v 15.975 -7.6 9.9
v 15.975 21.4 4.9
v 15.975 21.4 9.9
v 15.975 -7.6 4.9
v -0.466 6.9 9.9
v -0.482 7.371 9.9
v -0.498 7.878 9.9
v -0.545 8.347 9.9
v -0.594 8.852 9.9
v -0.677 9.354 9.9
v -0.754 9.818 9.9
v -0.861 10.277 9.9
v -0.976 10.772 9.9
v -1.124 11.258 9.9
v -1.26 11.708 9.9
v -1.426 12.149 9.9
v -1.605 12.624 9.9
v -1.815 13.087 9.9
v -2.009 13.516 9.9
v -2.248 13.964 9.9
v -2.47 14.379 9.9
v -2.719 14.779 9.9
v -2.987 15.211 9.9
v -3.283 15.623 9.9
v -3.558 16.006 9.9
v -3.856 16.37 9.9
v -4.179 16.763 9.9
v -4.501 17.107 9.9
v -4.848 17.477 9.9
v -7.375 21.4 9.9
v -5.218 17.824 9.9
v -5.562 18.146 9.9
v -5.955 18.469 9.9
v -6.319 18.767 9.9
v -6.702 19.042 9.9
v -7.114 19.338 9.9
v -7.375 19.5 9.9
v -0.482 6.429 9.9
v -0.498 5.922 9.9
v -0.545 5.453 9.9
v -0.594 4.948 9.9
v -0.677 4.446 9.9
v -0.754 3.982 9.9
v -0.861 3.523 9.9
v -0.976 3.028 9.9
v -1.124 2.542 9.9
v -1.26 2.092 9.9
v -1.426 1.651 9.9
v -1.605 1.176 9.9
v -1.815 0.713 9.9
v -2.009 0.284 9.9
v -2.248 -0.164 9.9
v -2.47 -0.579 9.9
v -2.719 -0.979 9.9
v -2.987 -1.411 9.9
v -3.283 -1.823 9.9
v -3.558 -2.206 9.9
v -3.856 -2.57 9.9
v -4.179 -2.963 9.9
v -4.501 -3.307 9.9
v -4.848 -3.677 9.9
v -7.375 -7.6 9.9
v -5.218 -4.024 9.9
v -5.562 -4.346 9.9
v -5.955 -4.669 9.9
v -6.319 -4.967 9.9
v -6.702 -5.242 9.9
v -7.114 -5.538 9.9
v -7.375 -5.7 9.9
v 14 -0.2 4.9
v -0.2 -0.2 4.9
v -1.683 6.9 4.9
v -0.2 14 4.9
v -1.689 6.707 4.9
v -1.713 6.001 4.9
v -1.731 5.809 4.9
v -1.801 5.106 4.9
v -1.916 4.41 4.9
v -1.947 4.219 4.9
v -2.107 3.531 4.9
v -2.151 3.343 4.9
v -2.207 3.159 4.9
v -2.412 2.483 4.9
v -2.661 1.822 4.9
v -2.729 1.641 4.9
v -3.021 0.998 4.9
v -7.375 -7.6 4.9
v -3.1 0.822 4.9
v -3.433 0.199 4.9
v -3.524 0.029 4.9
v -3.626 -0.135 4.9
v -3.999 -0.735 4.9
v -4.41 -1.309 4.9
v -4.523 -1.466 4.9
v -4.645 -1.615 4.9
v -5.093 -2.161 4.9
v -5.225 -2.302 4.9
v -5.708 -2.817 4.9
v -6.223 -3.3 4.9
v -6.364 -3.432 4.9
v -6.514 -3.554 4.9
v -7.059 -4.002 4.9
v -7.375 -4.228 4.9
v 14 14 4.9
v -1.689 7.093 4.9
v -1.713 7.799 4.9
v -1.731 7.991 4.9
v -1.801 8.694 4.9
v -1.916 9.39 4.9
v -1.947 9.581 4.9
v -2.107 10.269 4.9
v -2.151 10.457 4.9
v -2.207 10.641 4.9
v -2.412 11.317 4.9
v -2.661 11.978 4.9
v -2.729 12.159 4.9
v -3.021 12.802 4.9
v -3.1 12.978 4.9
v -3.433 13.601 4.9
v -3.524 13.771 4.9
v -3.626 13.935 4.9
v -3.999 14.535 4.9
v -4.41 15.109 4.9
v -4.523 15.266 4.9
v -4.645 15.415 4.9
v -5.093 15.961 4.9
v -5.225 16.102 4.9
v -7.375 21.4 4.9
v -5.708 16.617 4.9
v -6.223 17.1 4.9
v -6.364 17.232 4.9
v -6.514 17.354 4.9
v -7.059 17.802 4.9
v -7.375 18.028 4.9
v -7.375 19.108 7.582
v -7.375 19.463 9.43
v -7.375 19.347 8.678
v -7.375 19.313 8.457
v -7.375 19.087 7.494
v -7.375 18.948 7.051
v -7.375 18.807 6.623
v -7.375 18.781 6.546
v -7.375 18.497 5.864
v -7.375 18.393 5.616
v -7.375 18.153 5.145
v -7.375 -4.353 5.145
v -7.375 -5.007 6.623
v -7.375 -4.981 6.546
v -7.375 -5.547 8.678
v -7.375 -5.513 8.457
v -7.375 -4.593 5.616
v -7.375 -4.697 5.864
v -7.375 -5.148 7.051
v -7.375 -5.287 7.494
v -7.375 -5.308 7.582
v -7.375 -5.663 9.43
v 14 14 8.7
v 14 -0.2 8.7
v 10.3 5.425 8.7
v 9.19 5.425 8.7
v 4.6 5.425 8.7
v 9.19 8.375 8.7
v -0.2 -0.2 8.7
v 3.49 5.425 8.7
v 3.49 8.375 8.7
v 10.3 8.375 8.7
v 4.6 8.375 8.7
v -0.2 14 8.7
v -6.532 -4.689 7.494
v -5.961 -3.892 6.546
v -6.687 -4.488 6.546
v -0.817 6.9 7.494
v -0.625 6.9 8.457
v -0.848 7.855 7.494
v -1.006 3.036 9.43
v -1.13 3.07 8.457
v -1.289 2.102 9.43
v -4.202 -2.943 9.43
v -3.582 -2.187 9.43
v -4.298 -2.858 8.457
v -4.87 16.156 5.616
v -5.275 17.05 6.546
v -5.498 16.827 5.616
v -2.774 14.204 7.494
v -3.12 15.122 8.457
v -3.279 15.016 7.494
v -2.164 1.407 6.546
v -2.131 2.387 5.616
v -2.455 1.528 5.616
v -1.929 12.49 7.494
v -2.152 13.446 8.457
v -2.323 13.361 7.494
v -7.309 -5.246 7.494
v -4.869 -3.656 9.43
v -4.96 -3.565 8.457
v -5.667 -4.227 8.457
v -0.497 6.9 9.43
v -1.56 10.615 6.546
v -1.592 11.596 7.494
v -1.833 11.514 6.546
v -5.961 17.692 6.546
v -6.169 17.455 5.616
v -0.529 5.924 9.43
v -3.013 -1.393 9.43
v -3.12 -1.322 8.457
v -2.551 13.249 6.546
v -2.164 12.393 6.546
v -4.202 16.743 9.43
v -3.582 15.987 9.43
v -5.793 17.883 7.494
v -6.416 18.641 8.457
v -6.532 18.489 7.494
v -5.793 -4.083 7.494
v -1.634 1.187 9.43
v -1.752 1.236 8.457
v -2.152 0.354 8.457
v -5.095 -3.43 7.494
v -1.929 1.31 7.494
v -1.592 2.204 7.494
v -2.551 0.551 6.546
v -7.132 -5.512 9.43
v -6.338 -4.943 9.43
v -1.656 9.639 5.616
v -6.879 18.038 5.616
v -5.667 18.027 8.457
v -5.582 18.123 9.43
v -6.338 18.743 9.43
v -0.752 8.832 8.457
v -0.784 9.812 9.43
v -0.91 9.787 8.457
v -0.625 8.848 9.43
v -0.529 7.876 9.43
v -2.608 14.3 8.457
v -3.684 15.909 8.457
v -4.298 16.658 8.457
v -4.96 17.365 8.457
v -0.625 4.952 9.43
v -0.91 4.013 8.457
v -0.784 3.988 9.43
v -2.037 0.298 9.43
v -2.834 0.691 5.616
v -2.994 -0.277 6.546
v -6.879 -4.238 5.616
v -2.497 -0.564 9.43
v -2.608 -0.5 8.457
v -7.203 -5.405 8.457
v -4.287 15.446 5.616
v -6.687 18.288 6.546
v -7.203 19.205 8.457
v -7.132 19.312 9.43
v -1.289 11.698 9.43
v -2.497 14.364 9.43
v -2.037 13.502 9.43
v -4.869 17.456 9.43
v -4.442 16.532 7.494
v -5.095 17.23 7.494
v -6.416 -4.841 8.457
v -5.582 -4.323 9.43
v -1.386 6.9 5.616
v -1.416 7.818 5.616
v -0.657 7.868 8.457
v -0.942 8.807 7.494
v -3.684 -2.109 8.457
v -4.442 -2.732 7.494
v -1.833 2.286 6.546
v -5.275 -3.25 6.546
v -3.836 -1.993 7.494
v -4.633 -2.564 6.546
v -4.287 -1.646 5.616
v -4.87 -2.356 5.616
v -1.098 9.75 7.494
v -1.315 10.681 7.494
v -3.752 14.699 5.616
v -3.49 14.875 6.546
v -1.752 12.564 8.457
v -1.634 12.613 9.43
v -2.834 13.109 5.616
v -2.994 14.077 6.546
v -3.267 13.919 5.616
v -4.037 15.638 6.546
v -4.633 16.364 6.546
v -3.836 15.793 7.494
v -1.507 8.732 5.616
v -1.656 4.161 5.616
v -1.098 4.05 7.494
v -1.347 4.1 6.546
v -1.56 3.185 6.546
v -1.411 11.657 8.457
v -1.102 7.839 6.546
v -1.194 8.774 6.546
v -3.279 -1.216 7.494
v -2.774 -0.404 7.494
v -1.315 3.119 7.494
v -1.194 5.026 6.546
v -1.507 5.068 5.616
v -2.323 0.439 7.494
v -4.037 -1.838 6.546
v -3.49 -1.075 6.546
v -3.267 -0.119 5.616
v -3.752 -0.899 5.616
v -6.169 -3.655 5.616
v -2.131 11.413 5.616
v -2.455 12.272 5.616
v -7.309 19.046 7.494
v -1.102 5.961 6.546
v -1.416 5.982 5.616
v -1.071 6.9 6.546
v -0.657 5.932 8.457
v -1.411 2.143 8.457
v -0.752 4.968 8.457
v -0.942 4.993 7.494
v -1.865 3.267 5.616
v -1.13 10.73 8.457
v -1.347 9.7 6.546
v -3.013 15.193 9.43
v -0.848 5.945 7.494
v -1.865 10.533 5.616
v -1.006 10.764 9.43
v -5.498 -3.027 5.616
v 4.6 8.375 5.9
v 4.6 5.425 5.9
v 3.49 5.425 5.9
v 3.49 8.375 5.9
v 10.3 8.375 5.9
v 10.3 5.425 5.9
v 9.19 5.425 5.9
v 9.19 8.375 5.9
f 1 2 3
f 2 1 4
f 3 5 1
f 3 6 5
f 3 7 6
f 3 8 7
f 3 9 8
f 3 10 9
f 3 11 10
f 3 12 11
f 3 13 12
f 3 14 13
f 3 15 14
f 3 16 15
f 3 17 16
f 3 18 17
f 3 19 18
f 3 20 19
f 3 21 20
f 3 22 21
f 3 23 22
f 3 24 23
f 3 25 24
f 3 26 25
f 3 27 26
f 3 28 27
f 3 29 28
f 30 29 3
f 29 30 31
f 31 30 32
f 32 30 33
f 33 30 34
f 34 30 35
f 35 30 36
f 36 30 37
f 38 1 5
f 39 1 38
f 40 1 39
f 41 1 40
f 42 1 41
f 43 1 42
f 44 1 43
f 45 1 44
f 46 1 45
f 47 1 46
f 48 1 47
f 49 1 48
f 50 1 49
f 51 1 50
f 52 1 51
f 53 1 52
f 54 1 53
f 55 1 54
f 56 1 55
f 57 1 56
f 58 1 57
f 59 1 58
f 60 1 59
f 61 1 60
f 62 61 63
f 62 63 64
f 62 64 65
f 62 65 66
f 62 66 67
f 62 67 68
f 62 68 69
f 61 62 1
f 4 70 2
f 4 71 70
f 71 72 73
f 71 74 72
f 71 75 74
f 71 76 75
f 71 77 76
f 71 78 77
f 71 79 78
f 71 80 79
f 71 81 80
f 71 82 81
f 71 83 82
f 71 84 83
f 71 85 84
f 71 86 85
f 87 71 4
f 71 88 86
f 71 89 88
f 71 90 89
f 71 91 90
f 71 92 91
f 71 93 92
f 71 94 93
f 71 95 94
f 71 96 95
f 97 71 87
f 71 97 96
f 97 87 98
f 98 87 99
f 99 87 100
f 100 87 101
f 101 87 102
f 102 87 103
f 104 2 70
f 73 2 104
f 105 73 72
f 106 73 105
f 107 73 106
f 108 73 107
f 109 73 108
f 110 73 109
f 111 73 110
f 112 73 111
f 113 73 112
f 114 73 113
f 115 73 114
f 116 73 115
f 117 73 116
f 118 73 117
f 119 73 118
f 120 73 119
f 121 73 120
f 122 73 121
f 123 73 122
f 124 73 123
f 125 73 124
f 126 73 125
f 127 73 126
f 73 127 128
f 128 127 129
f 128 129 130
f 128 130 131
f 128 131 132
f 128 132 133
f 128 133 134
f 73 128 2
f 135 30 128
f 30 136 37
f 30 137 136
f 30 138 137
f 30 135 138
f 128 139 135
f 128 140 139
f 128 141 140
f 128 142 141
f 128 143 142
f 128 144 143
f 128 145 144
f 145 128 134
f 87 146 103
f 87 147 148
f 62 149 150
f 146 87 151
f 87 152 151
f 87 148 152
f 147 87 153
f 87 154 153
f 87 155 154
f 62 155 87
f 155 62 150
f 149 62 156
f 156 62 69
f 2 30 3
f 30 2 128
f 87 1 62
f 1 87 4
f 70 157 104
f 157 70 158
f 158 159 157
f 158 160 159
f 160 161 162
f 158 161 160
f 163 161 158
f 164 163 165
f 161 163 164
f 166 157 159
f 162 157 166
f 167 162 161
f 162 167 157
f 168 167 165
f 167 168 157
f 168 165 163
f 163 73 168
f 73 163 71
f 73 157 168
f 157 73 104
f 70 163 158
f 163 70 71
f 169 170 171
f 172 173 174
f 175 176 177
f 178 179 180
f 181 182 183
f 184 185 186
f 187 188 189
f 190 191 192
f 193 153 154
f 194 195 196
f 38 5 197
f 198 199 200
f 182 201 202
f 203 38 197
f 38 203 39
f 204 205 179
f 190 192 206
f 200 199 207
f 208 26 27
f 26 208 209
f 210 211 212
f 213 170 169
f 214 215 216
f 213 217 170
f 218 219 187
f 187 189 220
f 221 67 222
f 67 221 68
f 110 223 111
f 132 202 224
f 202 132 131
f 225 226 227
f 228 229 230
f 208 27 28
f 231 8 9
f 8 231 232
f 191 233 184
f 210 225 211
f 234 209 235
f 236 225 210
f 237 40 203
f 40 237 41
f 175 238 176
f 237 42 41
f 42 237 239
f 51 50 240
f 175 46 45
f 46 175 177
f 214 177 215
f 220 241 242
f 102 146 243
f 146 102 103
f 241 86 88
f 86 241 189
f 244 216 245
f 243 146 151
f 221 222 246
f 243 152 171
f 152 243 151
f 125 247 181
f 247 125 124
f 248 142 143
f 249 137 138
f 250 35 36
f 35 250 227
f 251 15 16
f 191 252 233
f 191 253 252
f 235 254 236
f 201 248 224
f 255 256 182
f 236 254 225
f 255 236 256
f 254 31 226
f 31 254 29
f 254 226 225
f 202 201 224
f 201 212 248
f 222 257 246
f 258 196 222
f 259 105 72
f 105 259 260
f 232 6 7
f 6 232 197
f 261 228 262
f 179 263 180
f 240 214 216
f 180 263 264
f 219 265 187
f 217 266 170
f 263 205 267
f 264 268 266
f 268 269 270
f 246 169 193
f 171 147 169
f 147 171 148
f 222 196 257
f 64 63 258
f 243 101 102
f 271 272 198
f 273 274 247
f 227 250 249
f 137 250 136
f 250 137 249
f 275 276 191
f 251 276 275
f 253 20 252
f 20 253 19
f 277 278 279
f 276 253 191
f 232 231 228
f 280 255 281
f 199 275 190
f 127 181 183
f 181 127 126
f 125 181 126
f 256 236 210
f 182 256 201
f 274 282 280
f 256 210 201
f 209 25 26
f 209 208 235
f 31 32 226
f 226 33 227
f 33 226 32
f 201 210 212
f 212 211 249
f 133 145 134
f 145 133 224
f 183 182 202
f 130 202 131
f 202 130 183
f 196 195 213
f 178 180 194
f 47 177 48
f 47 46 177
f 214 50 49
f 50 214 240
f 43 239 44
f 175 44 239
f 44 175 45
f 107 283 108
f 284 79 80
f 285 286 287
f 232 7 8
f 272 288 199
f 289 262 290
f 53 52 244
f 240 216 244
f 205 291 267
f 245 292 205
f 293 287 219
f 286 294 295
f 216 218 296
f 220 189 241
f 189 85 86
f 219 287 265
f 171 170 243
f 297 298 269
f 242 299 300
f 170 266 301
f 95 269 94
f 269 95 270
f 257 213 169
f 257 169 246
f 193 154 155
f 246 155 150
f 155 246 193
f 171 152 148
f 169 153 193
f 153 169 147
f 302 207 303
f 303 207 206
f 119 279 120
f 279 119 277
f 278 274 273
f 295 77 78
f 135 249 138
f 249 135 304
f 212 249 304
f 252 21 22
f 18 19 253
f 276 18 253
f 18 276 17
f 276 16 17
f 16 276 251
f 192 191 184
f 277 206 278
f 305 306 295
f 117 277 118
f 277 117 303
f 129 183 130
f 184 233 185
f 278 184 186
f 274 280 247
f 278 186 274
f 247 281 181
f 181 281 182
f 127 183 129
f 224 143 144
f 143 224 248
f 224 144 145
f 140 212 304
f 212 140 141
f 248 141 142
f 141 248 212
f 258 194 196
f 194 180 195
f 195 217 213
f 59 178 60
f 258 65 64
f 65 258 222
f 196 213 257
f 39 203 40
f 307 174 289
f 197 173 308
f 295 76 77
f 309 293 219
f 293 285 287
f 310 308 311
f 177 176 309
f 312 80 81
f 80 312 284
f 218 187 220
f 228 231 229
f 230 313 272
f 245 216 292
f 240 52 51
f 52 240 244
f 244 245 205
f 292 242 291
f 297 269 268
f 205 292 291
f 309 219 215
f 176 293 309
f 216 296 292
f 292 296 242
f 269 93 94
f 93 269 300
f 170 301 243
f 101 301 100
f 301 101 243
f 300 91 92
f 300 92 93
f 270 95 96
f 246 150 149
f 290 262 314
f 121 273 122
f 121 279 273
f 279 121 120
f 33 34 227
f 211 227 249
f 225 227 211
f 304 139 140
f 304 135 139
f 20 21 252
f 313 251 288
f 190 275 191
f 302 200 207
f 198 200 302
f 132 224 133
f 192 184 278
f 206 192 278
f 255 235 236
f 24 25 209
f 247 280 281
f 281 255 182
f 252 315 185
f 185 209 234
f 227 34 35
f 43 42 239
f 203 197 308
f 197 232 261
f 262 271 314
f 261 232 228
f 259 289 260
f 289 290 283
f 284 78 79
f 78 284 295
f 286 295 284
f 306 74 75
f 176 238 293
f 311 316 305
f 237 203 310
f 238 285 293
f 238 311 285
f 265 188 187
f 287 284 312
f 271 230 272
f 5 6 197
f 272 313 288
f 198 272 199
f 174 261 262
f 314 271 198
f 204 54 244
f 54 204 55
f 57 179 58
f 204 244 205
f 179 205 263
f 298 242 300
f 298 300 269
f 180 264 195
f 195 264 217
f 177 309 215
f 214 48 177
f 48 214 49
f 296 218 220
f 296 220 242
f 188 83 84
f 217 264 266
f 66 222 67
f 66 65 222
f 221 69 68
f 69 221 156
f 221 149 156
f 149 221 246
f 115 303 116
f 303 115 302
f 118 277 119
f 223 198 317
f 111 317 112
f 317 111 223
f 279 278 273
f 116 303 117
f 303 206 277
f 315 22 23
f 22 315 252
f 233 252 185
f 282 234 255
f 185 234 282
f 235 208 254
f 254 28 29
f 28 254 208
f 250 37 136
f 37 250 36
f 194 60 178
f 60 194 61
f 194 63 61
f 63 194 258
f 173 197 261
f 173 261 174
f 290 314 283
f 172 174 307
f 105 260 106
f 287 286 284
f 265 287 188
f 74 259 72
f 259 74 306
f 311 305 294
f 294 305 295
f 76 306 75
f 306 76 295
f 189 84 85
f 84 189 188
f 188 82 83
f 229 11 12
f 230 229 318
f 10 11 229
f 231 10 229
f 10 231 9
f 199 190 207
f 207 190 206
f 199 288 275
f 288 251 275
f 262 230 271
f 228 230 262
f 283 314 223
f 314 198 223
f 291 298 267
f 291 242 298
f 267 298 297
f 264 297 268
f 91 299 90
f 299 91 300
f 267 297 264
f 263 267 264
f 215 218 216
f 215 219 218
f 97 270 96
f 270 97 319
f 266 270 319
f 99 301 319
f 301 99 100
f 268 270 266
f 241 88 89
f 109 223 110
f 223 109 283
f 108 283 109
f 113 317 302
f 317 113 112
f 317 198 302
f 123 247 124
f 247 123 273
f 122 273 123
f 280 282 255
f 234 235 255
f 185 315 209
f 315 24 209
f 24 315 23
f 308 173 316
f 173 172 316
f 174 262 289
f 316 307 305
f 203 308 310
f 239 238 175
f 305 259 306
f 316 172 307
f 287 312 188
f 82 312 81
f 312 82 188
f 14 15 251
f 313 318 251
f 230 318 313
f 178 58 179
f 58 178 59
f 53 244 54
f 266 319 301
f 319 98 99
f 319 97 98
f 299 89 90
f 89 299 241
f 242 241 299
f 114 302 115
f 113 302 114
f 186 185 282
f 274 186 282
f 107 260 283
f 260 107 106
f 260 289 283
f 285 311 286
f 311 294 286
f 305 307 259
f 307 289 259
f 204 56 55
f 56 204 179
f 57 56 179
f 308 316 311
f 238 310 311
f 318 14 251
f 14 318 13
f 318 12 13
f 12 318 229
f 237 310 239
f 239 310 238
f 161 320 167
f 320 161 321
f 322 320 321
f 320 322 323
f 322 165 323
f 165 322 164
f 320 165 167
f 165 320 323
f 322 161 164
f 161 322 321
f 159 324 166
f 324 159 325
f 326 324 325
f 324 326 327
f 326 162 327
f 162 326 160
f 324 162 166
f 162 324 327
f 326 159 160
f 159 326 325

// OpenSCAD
base_w=13.8;
base_l=13.8;
base_h=5.7;
base_rh=0.5;
base_rt=0.8;

shaft_w=10.4;
shaft_l=4.5;
shaft_h=3;
shaft_kw=3.1;
shaft_kl=1.2;
shaft_kr=0.5;
shaft_hw=1.2;
shaft_hl=3;
shaft_hi=4.5; // 5.7 - 1.2
shaft_ho=6.9; // 5.7 + 1.2

stem_h=2.8;
stem_l2=2.95; // hole is 3
stem_l1=1;
stem_w1=0.75;
stem_w2=1.11; // hole is 1.2
stem_si=4.6;
stem_so=6.82;
stem_rs=5.4;
button_l=29;
button_w=23.35;
button_h=5;
button_t=1.2;
circle_r = 15;
kpad_w=70;

show_switch=0;
show_keycap=1;
add_rim=0;

module kc_lp_shaft() {
  union() {
   cube([shaft_w, shaft_l, shaft_h]);
   translate([(shaft_w-shaft_kw)/2, -shaft_kl,0])
    cube([shaft_kw,shaft_kl,shaft_h]);
  }
}
module kc_lp_b_sw() {
  color("white",0.8)
 cube([base_w, base_l, base_h]);
 translate([(base_w-shaft_w)/2-base_rt, (base_l-shaft_l)/2-base_rt, base_h]) {
   color("white",0.7)
  cube([shaft_w+base_rt*2,shaft_l+base_rt*2,base_rh]);
  translate([base_rt,base_rt,0]) {
    difference() {
      color("Brown")
      kc_lp_shaft();
      translate([(shaft_w-shaft_ho)/2,(shaft_l-shaft_hl)/2,0]) {
      cube([shaft_hw,shaft_hl,shaft_h+1]);
        translate([shaft_ho-shaft_hw,0,0])
        cube([shaft_hw,shaft_hl,shaft_h+1]);
      }
    }
  }
 }
}
off=2.6;
sup=0.8;
$fn=96;
if(show_keycap)
translate([(base_w-button_w)/2-off,(base_l-button_l)/2,base_h+shaft_h+button_t-button_h]) {
 union() {
  difference() {
   cube([button_w,button_l,button_h]);
   translate([(button_w-base_w)/2-0.2+off,(button_l-base_l)/2-0.2,-button_t])
    cube([base_w+0.4,base_l+0.4,button_h]);
    translate([button_w-kpad_w/2+off+1,button_l/2,button_h+1])
     sphere(circle_r);
  }
  // Stems
  translate([(button_w-stem_so)/2+off,(button_l-stem_l2)/2,button_h-button_t-stem_h]) {
     cube([stem_w2,stem_l2,stem_h]);
     translate([shaft_ho-shaft_hw,0,0])
      cube([stem_w2,stem_l2,stem_h]);
  }
  if(add_rim)
  // rim
  difference() {
   translate([(button_w-shaft_w)/2-base_rt+off,(button_l-shaft_l)/2-base_rt,button_h-button_t-sup]) {
    cube([shaft_w+base_rt*2,shaft_l+base_rt*2,sup]);
    translate([(shaft_w-shaft_kw)/2,base_rt-shaft_kl*2,-base_rh]) {
     cube([shaft_kw+base_rt*2,shaft_kl*2,sup+base_rh]);
     translate([0,shaft_l+shaft_kl*2,0])
      cube([shaft_kw+base_rt*2,shaft_kl*2,sup+base_rh]);
    }
   }
   // shaft hole
   translate([(button_w-shaft_w)/2+off,(button_l-shaft_l)/2,button_h-button_t-shaft_h]) {
      kc_lp_shaft();
    rotate([0,0,180])
     translate([-shaft_w,-shaft_l,0])
          kc_lp_shaft();
   }
  }
 }
}

if(show_switch)
 kc_lp_b_sw();
